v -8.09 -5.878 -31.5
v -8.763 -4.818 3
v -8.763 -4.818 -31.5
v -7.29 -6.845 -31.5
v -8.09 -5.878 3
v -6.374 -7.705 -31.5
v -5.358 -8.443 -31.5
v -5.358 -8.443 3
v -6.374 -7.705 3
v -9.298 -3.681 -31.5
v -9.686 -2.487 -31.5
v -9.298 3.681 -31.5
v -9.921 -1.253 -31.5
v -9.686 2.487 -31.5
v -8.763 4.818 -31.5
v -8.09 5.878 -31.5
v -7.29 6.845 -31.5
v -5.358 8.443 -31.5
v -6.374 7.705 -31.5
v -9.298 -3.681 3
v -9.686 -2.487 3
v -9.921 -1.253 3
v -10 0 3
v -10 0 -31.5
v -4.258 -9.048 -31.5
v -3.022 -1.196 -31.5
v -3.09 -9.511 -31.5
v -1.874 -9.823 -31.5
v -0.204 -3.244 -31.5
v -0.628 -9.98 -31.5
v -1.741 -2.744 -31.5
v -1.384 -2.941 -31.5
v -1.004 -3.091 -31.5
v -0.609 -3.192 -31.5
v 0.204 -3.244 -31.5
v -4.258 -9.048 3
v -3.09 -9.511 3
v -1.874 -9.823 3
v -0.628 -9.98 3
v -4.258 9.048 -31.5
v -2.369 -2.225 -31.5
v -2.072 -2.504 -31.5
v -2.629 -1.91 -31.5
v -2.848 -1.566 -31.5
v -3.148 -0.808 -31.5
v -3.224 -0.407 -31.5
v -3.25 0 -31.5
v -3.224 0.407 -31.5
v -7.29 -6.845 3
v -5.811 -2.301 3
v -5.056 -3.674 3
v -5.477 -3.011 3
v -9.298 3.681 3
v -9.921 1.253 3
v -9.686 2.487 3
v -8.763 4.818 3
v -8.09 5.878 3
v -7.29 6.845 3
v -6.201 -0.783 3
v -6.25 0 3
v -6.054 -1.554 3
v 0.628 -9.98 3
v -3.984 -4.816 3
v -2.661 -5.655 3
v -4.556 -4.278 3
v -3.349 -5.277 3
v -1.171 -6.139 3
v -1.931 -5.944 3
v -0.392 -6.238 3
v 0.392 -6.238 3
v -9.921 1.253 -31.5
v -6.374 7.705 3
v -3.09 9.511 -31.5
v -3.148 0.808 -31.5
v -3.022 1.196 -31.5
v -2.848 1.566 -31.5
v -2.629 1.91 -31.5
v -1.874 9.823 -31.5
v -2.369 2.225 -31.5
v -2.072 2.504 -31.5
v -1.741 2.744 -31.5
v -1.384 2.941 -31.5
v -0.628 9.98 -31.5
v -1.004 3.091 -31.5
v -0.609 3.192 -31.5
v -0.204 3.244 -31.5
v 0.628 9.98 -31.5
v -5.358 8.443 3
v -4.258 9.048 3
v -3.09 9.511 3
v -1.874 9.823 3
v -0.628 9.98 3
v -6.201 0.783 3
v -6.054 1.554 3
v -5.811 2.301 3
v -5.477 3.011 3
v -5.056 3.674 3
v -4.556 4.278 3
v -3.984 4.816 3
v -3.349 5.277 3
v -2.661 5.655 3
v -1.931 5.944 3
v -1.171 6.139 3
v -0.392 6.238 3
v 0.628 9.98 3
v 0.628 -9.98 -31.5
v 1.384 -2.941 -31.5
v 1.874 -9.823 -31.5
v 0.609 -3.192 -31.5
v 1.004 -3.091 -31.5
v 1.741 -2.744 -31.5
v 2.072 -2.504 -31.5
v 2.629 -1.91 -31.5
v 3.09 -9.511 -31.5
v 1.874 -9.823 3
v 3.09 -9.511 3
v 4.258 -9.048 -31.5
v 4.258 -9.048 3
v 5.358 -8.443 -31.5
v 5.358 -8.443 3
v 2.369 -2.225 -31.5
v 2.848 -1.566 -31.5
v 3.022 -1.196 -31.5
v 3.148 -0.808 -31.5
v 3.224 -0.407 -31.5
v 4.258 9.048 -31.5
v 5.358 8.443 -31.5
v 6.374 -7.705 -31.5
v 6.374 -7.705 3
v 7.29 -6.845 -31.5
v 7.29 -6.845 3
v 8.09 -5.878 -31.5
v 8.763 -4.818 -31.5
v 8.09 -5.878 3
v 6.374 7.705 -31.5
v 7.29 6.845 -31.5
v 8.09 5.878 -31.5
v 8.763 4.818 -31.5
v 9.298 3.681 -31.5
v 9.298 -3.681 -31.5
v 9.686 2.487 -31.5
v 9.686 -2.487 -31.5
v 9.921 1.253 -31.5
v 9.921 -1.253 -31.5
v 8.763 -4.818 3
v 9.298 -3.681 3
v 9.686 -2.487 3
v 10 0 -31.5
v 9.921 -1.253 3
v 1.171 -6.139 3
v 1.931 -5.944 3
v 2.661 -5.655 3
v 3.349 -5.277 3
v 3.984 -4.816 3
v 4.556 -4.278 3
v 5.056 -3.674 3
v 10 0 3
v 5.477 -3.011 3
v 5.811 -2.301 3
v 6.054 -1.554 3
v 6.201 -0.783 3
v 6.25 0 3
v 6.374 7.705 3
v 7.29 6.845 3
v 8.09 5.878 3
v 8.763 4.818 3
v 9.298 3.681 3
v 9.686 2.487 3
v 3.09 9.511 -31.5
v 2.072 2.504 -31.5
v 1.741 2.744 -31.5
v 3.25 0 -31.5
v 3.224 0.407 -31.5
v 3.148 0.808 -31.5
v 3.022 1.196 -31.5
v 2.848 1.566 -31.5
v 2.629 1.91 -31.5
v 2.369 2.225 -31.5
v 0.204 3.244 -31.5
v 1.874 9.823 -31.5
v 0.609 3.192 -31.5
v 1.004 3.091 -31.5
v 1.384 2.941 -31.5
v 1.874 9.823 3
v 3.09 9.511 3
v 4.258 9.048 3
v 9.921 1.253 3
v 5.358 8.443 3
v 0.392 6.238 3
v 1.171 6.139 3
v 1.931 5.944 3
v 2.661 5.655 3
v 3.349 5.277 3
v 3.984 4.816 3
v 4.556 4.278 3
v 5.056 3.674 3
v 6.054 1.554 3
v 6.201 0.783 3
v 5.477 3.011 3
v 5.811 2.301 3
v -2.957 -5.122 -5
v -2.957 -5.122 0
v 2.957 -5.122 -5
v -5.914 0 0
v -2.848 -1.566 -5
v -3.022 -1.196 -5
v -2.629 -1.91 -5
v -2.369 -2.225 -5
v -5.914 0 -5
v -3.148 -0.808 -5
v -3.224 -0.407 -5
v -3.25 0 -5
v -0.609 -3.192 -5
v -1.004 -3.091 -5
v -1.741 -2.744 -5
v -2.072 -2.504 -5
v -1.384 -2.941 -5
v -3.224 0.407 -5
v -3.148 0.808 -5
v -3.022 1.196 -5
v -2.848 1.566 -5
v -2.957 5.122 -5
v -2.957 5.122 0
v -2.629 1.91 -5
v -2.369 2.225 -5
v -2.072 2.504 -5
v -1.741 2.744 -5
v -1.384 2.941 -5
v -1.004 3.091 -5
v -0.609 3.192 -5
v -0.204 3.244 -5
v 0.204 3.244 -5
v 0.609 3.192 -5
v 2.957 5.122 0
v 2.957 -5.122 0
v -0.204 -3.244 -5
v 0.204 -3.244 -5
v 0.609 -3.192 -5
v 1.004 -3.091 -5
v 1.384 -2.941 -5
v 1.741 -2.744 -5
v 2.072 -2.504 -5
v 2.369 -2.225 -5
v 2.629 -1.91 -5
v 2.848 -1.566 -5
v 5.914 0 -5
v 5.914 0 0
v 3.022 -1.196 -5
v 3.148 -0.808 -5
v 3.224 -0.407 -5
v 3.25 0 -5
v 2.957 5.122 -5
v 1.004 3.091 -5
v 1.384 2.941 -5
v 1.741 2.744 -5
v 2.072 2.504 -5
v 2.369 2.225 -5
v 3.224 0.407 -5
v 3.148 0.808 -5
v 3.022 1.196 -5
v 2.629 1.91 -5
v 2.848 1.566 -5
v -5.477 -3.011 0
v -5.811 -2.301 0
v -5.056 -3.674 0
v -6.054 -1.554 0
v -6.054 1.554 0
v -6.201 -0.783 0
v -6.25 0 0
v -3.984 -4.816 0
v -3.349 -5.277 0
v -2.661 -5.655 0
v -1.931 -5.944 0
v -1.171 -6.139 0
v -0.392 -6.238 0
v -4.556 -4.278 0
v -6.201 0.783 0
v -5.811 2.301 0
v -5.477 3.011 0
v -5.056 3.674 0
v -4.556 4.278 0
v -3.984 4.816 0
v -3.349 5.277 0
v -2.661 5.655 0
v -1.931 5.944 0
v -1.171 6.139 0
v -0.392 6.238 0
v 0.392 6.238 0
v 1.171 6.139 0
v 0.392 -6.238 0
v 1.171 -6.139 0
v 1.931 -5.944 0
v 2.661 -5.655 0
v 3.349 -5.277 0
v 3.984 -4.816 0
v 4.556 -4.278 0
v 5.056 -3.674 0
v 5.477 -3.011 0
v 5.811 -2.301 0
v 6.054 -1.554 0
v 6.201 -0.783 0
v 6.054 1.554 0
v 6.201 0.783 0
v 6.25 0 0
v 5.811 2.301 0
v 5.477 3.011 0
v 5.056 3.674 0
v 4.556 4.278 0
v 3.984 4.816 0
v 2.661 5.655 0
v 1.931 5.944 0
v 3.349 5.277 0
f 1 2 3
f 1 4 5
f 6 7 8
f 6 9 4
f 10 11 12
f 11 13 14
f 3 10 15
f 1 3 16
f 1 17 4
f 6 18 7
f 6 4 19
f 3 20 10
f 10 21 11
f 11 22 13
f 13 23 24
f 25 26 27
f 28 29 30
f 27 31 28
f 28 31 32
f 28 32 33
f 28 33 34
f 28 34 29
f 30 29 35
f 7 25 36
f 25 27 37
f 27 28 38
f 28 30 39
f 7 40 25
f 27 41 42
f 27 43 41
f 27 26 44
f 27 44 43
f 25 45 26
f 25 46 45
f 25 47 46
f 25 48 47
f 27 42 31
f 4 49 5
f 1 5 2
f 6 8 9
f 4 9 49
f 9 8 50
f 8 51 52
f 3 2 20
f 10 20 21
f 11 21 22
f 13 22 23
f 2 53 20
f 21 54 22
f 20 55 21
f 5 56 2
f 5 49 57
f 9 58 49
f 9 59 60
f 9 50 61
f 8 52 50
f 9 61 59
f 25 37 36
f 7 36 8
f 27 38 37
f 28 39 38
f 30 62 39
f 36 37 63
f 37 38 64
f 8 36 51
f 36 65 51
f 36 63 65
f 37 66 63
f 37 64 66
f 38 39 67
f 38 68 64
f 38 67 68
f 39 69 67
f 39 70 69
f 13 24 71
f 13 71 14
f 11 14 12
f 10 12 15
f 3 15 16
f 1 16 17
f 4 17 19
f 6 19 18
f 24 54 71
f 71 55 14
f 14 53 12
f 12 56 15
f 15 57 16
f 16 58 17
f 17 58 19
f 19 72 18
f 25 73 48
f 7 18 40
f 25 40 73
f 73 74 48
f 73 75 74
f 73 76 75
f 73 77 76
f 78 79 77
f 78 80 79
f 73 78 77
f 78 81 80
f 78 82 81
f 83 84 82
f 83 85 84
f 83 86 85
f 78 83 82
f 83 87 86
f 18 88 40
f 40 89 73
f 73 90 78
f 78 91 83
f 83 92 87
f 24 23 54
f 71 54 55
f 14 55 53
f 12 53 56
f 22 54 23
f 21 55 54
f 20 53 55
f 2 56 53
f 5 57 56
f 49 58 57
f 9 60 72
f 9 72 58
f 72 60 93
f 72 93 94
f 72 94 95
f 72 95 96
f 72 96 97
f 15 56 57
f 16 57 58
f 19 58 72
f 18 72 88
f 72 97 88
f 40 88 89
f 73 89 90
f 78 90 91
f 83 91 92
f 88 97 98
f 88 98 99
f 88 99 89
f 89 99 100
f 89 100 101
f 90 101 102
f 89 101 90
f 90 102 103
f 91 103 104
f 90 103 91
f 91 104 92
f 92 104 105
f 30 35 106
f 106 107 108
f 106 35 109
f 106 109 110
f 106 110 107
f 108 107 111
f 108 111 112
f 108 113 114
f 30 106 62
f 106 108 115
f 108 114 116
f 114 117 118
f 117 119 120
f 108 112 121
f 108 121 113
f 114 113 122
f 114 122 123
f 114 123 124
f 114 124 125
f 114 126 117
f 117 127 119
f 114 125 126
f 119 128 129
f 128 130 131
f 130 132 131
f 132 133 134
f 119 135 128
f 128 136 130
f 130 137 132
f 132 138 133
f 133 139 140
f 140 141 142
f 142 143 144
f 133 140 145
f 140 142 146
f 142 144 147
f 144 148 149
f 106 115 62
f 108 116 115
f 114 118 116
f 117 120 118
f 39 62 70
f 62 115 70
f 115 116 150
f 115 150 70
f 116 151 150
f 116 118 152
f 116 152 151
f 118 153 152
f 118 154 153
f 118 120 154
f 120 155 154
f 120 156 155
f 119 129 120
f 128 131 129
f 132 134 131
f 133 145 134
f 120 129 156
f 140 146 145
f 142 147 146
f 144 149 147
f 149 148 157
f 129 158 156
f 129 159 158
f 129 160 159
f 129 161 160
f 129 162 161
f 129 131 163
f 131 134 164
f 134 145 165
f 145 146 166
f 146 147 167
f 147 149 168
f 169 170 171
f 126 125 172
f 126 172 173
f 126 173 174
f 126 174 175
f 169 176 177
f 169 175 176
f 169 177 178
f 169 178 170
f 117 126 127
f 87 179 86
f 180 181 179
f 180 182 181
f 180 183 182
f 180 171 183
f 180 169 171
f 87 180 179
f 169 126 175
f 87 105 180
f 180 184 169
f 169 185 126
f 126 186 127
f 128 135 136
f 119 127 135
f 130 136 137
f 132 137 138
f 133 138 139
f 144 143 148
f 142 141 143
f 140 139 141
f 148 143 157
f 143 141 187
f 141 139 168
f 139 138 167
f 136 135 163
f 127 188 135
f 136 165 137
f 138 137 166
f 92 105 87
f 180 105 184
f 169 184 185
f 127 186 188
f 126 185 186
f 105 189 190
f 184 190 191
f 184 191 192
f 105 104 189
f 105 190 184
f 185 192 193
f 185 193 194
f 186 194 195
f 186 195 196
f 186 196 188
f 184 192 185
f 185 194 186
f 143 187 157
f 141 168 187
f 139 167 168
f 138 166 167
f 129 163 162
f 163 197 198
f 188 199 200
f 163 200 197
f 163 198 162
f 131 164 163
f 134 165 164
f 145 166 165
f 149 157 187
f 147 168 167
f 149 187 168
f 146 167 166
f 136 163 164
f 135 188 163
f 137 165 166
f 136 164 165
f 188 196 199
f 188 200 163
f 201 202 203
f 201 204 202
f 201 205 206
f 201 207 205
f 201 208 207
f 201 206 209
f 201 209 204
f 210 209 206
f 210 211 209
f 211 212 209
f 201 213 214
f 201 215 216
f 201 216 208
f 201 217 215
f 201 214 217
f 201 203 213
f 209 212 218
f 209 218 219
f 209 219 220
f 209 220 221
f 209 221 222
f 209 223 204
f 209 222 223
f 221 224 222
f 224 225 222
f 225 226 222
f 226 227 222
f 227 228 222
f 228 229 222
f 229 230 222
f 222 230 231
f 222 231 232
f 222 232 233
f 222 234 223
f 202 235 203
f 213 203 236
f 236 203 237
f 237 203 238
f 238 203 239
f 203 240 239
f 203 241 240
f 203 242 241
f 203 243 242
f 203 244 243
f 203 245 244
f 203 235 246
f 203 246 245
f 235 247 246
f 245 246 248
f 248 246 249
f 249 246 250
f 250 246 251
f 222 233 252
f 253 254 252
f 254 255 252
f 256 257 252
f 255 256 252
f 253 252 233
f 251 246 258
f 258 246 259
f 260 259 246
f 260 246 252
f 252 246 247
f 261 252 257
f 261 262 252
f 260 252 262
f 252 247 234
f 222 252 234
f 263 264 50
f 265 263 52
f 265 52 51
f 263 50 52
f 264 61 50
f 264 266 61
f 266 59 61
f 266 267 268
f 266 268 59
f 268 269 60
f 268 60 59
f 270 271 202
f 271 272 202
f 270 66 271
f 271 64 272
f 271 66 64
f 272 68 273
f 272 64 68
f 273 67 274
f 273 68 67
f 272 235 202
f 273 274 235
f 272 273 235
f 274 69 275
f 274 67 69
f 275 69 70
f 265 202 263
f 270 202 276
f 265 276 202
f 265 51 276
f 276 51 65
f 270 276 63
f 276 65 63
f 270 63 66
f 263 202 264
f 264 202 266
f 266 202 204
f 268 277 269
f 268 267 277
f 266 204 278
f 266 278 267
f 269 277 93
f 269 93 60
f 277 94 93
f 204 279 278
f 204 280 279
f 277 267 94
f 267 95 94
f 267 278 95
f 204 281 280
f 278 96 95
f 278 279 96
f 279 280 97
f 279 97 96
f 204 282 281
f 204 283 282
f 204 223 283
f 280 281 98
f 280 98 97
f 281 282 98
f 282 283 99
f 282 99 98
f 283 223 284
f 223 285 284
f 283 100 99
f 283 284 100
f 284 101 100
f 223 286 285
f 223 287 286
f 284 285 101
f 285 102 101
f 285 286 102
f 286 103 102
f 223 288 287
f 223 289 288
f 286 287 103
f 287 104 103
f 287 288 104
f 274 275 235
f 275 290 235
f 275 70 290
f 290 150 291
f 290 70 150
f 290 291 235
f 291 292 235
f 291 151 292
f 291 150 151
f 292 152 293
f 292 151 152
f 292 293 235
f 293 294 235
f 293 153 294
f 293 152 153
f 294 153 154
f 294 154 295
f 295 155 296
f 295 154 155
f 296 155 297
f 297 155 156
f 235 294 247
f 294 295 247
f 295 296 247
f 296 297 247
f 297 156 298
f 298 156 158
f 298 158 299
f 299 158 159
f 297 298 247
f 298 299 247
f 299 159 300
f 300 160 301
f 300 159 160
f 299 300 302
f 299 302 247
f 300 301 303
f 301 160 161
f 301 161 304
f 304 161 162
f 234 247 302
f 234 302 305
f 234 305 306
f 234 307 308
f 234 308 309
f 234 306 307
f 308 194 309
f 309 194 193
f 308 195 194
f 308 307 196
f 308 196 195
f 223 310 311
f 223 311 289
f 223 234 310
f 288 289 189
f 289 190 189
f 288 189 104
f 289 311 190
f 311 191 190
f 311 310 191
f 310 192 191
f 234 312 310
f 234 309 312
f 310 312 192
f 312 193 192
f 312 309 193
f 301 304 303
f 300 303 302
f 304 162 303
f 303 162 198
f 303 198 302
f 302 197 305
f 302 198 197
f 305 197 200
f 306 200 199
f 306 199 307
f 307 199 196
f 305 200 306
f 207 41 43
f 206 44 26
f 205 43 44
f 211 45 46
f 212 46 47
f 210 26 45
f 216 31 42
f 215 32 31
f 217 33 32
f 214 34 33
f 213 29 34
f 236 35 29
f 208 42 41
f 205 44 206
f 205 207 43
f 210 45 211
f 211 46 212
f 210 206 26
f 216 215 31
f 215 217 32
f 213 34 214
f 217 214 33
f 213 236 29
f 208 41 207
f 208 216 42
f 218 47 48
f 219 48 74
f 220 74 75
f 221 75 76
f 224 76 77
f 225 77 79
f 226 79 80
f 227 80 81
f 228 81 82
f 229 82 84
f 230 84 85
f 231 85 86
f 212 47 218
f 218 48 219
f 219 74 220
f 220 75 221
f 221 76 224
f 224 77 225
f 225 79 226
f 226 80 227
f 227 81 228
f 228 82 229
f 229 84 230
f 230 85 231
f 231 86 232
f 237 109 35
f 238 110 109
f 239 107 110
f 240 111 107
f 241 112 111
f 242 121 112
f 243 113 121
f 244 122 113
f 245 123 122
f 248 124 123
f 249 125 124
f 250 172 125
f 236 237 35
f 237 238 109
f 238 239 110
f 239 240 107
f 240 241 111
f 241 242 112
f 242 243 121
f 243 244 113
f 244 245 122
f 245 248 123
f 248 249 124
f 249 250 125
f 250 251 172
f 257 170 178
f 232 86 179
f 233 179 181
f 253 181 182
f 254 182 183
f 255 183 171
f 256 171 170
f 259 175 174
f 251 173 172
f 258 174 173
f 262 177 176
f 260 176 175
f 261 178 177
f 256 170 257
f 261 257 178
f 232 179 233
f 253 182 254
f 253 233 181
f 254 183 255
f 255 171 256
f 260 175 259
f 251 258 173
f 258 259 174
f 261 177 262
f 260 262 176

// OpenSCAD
$fn = 50;

difference() {
	union() {
		translate(v = [0, 0, -31.5]) {
			cylinder(h = 34.5, r = 10.0);
		}
		#translate(v = [0, 0, -33.0]) {
			cylinder(h = 33, r = 2.875);
		}
	}
	union() {
		translate(v = [0, 0, 0]) {
			rotate(a = [0, 0, 0]) {
				difference() {
					union() {
						translate(v = [0, 0, -5]) {
							linear_extrude(height = 5) {
								polygon(points = [[5.914249999999999, 0.0], [2.957125, 5.1218907443321156], [-2.9571249999999982, 5.1218907443321156], [-5.914249999999999, 7.242867331857232e-16], [-2.9571250000000022, -5.121890744332115], [2.9571249999999956, -5.121890744332118]]);
							}
						}
					}
					union();
				}
			}
		}
		#cylinder(h = 3, r = 6.25);
		#translate(v = [0, 0, -100.0]) {
			cylinder(h = 200, r = 3.25);
		}
	}
}
